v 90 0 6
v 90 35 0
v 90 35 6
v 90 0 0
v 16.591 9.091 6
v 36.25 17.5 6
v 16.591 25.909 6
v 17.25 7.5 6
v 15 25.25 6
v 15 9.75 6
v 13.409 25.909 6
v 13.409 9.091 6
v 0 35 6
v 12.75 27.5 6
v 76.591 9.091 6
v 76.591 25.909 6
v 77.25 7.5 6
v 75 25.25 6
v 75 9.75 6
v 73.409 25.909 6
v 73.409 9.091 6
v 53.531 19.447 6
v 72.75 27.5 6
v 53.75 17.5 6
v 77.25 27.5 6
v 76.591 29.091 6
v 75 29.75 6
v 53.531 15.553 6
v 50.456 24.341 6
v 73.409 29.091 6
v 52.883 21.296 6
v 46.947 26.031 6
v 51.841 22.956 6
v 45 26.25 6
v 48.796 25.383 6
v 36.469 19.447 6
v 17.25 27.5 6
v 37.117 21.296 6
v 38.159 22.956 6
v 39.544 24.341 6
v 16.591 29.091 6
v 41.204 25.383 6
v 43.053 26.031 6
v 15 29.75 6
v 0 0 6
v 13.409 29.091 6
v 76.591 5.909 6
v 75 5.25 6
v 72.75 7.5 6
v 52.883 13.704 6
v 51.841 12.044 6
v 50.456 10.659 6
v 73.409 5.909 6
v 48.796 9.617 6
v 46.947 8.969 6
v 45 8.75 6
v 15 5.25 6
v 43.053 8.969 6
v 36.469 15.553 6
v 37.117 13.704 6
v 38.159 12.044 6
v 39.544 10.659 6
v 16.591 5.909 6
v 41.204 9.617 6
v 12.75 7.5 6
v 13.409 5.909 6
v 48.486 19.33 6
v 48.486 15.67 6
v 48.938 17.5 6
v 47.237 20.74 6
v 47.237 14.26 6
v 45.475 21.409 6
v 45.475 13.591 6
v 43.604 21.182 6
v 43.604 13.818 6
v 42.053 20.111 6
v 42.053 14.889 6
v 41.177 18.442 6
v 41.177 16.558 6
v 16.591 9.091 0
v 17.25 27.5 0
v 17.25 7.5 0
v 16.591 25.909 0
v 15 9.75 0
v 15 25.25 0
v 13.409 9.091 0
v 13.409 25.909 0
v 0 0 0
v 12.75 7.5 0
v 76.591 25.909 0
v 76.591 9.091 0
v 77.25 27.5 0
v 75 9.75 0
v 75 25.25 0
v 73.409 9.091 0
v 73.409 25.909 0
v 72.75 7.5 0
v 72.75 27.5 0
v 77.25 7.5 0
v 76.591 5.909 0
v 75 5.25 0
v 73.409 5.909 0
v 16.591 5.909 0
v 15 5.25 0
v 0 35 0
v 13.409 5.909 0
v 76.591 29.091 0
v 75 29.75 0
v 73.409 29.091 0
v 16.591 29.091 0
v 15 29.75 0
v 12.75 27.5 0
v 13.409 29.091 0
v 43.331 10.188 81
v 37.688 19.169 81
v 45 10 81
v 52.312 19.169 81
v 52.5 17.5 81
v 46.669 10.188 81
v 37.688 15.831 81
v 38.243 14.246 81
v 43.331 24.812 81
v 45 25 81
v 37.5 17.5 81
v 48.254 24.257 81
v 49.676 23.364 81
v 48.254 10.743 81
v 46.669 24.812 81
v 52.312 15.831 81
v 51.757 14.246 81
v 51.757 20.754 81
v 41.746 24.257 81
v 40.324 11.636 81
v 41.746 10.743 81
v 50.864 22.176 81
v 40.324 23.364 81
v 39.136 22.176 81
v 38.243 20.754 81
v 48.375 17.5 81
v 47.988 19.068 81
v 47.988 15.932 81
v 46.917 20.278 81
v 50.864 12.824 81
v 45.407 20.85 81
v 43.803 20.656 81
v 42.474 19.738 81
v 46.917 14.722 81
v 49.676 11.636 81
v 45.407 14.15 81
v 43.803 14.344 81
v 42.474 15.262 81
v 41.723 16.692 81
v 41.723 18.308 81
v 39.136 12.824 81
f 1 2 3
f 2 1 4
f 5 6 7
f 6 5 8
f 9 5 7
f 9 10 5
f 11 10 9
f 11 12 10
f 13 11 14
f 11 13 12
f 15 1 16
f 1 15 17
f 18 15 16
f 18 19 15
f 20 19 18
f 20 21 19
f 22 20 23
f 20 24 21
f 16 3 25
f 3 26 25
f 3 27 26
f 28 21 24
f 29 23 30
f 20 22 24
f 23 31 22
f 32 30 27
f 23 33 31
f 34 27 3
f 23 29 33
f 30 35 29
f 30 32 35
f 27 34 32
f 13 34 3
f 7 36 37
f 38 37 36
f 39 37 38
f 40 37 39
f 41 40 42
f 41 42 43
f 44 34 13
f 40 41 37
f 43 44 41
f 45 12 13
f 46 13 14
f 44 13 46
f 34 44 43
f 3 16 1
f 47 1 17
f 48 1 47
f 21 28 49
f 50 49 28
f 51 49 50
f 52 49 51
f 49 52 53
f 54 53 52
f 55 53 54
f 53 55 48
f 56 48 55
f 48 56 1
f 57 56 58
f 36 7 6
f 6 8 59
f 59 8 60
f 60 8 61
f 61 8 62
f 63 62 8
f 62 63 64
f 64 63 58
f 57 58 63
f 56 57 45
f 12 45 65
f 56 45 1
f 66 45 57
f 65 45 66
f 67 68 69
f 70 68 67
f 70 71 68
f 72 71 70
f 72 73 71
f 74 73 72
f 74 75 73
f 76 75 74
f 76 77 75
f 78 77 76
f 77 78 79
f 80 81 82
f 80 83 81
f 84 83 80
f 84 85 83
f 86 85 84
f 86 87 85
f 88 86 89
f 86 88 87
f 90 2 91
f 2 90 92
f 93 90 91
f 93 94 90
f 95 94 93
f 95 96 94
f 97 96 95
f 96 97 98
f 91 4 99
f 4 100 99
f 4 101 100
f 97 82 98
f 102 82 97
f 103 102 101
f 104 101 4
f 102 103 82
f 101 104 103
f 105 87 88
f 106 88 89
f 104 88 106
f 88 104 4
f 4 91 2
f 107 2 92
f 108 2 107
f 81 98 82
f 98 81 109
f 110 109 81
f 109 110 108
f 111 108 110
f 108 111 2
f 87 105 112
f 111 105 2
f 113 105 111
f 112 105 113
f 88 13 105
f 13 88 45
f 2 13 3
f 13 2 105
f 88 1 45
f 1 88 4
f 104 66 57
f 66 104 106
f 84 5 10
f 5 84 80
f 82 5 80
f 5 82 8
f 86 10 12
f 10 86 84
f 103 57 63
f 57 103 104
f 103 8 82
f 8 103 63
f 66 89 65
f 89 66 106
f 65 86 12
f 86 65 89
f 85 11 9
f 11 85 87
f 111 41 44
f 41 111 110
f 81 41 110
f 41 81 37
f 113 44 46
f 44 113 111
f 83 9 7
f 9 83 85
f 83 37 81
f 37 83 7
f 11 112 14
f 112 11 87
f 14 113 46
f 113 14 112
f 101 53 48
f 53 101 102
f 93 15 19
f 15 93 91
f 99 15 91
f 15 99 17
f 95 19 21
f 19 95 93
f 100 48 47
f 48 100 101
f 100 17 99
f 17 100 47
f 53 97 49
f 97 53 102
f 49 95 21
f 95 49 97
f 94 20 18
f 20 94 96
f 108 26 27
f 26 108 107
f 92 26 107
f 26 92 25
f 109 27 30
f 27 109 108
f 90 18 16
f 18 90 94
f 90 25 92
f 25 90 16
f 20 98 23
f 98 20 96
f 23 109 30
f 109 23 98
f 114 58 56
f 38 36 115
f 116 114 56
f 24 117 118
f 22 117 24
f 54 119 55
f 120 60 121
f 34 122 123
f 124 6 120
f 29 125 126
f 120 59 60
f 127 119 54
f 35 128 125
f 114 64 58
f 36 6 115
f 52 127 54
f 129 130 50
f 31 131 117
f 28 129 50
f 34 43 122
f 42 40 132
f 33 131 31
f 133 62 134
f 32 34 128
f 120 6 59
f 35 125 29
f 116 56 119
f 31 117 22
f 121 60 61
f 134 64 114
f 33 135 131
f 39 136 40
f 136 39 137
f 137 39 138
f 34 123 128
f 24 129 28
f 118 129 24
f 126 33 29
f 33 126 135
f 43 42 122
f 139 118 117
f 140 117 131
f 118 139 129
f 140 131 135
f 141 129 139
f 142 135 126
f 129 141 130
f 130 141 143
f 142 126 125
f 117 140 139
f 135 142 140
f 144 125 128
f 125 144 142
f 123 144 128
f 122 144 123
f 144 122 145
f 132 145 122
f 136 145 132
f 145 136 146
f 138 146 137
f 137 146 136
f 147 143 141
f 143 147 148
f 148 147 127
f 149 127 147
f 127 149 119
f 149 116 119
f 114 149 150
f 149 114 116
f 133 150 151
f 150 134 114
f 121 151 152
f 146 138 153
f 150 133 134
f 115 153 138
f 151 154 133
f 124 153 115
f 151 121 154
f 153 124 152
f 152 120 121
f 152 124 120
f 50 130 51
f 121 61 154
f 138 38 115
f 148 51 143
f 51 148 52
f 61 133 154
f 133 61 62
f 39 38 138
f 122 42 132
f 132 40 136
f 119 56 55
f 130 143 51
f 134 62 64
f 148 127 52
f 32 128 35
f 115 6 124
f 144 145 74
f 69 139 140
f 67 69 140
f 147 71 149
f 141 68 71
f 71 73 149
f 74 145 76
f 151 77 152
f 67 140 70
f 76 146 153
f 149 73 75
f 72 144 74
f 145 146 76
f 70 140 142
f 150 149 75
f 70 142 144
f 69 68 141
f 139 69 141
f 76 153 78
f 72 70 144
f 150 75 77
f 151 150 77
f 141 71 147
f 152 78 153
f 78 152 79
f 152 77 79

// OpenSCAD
stub_diameter_max = 17.5;
stub_diameter_min = 15.0;
stub_length = 75.0;

plate_length = 90;
plate_width = 35.0;
plate_depth = 6.0;

mount_hole_diameter = 4.5;

difference() {
    cube([plate_length, plate_width, plate_depth]);
    
    translate([15, 7.5, 0])
    cylinder(plate_depth, mount_hole_diameter/2, mount_hole_diameter/2);

    translate([15, 27.5, 0])
    cylinder(plate_depth, mount_hole_diameter/2, mount_hole_diameter/2);

    translate([75, 7.5, 0])
    cylinder(plate_depth, mount_hole_diameter/2, mount_hole_diameter/2);

    translate([75, 27.5, 0])
    cylinder(plate_depth, mount_hole_diameter/2, mount_hole_diameter/2);
}

translate([plate_length/2, plate_width/2, plate_depth])
difference(){
    cylinder(stub_length, stub_diameter_max/2, stub_diameter_min/2);
    cylinder(stub_length, (stub_diameter_max*0.45)/2, (stub_diameter_min*0.45)/2);
}
